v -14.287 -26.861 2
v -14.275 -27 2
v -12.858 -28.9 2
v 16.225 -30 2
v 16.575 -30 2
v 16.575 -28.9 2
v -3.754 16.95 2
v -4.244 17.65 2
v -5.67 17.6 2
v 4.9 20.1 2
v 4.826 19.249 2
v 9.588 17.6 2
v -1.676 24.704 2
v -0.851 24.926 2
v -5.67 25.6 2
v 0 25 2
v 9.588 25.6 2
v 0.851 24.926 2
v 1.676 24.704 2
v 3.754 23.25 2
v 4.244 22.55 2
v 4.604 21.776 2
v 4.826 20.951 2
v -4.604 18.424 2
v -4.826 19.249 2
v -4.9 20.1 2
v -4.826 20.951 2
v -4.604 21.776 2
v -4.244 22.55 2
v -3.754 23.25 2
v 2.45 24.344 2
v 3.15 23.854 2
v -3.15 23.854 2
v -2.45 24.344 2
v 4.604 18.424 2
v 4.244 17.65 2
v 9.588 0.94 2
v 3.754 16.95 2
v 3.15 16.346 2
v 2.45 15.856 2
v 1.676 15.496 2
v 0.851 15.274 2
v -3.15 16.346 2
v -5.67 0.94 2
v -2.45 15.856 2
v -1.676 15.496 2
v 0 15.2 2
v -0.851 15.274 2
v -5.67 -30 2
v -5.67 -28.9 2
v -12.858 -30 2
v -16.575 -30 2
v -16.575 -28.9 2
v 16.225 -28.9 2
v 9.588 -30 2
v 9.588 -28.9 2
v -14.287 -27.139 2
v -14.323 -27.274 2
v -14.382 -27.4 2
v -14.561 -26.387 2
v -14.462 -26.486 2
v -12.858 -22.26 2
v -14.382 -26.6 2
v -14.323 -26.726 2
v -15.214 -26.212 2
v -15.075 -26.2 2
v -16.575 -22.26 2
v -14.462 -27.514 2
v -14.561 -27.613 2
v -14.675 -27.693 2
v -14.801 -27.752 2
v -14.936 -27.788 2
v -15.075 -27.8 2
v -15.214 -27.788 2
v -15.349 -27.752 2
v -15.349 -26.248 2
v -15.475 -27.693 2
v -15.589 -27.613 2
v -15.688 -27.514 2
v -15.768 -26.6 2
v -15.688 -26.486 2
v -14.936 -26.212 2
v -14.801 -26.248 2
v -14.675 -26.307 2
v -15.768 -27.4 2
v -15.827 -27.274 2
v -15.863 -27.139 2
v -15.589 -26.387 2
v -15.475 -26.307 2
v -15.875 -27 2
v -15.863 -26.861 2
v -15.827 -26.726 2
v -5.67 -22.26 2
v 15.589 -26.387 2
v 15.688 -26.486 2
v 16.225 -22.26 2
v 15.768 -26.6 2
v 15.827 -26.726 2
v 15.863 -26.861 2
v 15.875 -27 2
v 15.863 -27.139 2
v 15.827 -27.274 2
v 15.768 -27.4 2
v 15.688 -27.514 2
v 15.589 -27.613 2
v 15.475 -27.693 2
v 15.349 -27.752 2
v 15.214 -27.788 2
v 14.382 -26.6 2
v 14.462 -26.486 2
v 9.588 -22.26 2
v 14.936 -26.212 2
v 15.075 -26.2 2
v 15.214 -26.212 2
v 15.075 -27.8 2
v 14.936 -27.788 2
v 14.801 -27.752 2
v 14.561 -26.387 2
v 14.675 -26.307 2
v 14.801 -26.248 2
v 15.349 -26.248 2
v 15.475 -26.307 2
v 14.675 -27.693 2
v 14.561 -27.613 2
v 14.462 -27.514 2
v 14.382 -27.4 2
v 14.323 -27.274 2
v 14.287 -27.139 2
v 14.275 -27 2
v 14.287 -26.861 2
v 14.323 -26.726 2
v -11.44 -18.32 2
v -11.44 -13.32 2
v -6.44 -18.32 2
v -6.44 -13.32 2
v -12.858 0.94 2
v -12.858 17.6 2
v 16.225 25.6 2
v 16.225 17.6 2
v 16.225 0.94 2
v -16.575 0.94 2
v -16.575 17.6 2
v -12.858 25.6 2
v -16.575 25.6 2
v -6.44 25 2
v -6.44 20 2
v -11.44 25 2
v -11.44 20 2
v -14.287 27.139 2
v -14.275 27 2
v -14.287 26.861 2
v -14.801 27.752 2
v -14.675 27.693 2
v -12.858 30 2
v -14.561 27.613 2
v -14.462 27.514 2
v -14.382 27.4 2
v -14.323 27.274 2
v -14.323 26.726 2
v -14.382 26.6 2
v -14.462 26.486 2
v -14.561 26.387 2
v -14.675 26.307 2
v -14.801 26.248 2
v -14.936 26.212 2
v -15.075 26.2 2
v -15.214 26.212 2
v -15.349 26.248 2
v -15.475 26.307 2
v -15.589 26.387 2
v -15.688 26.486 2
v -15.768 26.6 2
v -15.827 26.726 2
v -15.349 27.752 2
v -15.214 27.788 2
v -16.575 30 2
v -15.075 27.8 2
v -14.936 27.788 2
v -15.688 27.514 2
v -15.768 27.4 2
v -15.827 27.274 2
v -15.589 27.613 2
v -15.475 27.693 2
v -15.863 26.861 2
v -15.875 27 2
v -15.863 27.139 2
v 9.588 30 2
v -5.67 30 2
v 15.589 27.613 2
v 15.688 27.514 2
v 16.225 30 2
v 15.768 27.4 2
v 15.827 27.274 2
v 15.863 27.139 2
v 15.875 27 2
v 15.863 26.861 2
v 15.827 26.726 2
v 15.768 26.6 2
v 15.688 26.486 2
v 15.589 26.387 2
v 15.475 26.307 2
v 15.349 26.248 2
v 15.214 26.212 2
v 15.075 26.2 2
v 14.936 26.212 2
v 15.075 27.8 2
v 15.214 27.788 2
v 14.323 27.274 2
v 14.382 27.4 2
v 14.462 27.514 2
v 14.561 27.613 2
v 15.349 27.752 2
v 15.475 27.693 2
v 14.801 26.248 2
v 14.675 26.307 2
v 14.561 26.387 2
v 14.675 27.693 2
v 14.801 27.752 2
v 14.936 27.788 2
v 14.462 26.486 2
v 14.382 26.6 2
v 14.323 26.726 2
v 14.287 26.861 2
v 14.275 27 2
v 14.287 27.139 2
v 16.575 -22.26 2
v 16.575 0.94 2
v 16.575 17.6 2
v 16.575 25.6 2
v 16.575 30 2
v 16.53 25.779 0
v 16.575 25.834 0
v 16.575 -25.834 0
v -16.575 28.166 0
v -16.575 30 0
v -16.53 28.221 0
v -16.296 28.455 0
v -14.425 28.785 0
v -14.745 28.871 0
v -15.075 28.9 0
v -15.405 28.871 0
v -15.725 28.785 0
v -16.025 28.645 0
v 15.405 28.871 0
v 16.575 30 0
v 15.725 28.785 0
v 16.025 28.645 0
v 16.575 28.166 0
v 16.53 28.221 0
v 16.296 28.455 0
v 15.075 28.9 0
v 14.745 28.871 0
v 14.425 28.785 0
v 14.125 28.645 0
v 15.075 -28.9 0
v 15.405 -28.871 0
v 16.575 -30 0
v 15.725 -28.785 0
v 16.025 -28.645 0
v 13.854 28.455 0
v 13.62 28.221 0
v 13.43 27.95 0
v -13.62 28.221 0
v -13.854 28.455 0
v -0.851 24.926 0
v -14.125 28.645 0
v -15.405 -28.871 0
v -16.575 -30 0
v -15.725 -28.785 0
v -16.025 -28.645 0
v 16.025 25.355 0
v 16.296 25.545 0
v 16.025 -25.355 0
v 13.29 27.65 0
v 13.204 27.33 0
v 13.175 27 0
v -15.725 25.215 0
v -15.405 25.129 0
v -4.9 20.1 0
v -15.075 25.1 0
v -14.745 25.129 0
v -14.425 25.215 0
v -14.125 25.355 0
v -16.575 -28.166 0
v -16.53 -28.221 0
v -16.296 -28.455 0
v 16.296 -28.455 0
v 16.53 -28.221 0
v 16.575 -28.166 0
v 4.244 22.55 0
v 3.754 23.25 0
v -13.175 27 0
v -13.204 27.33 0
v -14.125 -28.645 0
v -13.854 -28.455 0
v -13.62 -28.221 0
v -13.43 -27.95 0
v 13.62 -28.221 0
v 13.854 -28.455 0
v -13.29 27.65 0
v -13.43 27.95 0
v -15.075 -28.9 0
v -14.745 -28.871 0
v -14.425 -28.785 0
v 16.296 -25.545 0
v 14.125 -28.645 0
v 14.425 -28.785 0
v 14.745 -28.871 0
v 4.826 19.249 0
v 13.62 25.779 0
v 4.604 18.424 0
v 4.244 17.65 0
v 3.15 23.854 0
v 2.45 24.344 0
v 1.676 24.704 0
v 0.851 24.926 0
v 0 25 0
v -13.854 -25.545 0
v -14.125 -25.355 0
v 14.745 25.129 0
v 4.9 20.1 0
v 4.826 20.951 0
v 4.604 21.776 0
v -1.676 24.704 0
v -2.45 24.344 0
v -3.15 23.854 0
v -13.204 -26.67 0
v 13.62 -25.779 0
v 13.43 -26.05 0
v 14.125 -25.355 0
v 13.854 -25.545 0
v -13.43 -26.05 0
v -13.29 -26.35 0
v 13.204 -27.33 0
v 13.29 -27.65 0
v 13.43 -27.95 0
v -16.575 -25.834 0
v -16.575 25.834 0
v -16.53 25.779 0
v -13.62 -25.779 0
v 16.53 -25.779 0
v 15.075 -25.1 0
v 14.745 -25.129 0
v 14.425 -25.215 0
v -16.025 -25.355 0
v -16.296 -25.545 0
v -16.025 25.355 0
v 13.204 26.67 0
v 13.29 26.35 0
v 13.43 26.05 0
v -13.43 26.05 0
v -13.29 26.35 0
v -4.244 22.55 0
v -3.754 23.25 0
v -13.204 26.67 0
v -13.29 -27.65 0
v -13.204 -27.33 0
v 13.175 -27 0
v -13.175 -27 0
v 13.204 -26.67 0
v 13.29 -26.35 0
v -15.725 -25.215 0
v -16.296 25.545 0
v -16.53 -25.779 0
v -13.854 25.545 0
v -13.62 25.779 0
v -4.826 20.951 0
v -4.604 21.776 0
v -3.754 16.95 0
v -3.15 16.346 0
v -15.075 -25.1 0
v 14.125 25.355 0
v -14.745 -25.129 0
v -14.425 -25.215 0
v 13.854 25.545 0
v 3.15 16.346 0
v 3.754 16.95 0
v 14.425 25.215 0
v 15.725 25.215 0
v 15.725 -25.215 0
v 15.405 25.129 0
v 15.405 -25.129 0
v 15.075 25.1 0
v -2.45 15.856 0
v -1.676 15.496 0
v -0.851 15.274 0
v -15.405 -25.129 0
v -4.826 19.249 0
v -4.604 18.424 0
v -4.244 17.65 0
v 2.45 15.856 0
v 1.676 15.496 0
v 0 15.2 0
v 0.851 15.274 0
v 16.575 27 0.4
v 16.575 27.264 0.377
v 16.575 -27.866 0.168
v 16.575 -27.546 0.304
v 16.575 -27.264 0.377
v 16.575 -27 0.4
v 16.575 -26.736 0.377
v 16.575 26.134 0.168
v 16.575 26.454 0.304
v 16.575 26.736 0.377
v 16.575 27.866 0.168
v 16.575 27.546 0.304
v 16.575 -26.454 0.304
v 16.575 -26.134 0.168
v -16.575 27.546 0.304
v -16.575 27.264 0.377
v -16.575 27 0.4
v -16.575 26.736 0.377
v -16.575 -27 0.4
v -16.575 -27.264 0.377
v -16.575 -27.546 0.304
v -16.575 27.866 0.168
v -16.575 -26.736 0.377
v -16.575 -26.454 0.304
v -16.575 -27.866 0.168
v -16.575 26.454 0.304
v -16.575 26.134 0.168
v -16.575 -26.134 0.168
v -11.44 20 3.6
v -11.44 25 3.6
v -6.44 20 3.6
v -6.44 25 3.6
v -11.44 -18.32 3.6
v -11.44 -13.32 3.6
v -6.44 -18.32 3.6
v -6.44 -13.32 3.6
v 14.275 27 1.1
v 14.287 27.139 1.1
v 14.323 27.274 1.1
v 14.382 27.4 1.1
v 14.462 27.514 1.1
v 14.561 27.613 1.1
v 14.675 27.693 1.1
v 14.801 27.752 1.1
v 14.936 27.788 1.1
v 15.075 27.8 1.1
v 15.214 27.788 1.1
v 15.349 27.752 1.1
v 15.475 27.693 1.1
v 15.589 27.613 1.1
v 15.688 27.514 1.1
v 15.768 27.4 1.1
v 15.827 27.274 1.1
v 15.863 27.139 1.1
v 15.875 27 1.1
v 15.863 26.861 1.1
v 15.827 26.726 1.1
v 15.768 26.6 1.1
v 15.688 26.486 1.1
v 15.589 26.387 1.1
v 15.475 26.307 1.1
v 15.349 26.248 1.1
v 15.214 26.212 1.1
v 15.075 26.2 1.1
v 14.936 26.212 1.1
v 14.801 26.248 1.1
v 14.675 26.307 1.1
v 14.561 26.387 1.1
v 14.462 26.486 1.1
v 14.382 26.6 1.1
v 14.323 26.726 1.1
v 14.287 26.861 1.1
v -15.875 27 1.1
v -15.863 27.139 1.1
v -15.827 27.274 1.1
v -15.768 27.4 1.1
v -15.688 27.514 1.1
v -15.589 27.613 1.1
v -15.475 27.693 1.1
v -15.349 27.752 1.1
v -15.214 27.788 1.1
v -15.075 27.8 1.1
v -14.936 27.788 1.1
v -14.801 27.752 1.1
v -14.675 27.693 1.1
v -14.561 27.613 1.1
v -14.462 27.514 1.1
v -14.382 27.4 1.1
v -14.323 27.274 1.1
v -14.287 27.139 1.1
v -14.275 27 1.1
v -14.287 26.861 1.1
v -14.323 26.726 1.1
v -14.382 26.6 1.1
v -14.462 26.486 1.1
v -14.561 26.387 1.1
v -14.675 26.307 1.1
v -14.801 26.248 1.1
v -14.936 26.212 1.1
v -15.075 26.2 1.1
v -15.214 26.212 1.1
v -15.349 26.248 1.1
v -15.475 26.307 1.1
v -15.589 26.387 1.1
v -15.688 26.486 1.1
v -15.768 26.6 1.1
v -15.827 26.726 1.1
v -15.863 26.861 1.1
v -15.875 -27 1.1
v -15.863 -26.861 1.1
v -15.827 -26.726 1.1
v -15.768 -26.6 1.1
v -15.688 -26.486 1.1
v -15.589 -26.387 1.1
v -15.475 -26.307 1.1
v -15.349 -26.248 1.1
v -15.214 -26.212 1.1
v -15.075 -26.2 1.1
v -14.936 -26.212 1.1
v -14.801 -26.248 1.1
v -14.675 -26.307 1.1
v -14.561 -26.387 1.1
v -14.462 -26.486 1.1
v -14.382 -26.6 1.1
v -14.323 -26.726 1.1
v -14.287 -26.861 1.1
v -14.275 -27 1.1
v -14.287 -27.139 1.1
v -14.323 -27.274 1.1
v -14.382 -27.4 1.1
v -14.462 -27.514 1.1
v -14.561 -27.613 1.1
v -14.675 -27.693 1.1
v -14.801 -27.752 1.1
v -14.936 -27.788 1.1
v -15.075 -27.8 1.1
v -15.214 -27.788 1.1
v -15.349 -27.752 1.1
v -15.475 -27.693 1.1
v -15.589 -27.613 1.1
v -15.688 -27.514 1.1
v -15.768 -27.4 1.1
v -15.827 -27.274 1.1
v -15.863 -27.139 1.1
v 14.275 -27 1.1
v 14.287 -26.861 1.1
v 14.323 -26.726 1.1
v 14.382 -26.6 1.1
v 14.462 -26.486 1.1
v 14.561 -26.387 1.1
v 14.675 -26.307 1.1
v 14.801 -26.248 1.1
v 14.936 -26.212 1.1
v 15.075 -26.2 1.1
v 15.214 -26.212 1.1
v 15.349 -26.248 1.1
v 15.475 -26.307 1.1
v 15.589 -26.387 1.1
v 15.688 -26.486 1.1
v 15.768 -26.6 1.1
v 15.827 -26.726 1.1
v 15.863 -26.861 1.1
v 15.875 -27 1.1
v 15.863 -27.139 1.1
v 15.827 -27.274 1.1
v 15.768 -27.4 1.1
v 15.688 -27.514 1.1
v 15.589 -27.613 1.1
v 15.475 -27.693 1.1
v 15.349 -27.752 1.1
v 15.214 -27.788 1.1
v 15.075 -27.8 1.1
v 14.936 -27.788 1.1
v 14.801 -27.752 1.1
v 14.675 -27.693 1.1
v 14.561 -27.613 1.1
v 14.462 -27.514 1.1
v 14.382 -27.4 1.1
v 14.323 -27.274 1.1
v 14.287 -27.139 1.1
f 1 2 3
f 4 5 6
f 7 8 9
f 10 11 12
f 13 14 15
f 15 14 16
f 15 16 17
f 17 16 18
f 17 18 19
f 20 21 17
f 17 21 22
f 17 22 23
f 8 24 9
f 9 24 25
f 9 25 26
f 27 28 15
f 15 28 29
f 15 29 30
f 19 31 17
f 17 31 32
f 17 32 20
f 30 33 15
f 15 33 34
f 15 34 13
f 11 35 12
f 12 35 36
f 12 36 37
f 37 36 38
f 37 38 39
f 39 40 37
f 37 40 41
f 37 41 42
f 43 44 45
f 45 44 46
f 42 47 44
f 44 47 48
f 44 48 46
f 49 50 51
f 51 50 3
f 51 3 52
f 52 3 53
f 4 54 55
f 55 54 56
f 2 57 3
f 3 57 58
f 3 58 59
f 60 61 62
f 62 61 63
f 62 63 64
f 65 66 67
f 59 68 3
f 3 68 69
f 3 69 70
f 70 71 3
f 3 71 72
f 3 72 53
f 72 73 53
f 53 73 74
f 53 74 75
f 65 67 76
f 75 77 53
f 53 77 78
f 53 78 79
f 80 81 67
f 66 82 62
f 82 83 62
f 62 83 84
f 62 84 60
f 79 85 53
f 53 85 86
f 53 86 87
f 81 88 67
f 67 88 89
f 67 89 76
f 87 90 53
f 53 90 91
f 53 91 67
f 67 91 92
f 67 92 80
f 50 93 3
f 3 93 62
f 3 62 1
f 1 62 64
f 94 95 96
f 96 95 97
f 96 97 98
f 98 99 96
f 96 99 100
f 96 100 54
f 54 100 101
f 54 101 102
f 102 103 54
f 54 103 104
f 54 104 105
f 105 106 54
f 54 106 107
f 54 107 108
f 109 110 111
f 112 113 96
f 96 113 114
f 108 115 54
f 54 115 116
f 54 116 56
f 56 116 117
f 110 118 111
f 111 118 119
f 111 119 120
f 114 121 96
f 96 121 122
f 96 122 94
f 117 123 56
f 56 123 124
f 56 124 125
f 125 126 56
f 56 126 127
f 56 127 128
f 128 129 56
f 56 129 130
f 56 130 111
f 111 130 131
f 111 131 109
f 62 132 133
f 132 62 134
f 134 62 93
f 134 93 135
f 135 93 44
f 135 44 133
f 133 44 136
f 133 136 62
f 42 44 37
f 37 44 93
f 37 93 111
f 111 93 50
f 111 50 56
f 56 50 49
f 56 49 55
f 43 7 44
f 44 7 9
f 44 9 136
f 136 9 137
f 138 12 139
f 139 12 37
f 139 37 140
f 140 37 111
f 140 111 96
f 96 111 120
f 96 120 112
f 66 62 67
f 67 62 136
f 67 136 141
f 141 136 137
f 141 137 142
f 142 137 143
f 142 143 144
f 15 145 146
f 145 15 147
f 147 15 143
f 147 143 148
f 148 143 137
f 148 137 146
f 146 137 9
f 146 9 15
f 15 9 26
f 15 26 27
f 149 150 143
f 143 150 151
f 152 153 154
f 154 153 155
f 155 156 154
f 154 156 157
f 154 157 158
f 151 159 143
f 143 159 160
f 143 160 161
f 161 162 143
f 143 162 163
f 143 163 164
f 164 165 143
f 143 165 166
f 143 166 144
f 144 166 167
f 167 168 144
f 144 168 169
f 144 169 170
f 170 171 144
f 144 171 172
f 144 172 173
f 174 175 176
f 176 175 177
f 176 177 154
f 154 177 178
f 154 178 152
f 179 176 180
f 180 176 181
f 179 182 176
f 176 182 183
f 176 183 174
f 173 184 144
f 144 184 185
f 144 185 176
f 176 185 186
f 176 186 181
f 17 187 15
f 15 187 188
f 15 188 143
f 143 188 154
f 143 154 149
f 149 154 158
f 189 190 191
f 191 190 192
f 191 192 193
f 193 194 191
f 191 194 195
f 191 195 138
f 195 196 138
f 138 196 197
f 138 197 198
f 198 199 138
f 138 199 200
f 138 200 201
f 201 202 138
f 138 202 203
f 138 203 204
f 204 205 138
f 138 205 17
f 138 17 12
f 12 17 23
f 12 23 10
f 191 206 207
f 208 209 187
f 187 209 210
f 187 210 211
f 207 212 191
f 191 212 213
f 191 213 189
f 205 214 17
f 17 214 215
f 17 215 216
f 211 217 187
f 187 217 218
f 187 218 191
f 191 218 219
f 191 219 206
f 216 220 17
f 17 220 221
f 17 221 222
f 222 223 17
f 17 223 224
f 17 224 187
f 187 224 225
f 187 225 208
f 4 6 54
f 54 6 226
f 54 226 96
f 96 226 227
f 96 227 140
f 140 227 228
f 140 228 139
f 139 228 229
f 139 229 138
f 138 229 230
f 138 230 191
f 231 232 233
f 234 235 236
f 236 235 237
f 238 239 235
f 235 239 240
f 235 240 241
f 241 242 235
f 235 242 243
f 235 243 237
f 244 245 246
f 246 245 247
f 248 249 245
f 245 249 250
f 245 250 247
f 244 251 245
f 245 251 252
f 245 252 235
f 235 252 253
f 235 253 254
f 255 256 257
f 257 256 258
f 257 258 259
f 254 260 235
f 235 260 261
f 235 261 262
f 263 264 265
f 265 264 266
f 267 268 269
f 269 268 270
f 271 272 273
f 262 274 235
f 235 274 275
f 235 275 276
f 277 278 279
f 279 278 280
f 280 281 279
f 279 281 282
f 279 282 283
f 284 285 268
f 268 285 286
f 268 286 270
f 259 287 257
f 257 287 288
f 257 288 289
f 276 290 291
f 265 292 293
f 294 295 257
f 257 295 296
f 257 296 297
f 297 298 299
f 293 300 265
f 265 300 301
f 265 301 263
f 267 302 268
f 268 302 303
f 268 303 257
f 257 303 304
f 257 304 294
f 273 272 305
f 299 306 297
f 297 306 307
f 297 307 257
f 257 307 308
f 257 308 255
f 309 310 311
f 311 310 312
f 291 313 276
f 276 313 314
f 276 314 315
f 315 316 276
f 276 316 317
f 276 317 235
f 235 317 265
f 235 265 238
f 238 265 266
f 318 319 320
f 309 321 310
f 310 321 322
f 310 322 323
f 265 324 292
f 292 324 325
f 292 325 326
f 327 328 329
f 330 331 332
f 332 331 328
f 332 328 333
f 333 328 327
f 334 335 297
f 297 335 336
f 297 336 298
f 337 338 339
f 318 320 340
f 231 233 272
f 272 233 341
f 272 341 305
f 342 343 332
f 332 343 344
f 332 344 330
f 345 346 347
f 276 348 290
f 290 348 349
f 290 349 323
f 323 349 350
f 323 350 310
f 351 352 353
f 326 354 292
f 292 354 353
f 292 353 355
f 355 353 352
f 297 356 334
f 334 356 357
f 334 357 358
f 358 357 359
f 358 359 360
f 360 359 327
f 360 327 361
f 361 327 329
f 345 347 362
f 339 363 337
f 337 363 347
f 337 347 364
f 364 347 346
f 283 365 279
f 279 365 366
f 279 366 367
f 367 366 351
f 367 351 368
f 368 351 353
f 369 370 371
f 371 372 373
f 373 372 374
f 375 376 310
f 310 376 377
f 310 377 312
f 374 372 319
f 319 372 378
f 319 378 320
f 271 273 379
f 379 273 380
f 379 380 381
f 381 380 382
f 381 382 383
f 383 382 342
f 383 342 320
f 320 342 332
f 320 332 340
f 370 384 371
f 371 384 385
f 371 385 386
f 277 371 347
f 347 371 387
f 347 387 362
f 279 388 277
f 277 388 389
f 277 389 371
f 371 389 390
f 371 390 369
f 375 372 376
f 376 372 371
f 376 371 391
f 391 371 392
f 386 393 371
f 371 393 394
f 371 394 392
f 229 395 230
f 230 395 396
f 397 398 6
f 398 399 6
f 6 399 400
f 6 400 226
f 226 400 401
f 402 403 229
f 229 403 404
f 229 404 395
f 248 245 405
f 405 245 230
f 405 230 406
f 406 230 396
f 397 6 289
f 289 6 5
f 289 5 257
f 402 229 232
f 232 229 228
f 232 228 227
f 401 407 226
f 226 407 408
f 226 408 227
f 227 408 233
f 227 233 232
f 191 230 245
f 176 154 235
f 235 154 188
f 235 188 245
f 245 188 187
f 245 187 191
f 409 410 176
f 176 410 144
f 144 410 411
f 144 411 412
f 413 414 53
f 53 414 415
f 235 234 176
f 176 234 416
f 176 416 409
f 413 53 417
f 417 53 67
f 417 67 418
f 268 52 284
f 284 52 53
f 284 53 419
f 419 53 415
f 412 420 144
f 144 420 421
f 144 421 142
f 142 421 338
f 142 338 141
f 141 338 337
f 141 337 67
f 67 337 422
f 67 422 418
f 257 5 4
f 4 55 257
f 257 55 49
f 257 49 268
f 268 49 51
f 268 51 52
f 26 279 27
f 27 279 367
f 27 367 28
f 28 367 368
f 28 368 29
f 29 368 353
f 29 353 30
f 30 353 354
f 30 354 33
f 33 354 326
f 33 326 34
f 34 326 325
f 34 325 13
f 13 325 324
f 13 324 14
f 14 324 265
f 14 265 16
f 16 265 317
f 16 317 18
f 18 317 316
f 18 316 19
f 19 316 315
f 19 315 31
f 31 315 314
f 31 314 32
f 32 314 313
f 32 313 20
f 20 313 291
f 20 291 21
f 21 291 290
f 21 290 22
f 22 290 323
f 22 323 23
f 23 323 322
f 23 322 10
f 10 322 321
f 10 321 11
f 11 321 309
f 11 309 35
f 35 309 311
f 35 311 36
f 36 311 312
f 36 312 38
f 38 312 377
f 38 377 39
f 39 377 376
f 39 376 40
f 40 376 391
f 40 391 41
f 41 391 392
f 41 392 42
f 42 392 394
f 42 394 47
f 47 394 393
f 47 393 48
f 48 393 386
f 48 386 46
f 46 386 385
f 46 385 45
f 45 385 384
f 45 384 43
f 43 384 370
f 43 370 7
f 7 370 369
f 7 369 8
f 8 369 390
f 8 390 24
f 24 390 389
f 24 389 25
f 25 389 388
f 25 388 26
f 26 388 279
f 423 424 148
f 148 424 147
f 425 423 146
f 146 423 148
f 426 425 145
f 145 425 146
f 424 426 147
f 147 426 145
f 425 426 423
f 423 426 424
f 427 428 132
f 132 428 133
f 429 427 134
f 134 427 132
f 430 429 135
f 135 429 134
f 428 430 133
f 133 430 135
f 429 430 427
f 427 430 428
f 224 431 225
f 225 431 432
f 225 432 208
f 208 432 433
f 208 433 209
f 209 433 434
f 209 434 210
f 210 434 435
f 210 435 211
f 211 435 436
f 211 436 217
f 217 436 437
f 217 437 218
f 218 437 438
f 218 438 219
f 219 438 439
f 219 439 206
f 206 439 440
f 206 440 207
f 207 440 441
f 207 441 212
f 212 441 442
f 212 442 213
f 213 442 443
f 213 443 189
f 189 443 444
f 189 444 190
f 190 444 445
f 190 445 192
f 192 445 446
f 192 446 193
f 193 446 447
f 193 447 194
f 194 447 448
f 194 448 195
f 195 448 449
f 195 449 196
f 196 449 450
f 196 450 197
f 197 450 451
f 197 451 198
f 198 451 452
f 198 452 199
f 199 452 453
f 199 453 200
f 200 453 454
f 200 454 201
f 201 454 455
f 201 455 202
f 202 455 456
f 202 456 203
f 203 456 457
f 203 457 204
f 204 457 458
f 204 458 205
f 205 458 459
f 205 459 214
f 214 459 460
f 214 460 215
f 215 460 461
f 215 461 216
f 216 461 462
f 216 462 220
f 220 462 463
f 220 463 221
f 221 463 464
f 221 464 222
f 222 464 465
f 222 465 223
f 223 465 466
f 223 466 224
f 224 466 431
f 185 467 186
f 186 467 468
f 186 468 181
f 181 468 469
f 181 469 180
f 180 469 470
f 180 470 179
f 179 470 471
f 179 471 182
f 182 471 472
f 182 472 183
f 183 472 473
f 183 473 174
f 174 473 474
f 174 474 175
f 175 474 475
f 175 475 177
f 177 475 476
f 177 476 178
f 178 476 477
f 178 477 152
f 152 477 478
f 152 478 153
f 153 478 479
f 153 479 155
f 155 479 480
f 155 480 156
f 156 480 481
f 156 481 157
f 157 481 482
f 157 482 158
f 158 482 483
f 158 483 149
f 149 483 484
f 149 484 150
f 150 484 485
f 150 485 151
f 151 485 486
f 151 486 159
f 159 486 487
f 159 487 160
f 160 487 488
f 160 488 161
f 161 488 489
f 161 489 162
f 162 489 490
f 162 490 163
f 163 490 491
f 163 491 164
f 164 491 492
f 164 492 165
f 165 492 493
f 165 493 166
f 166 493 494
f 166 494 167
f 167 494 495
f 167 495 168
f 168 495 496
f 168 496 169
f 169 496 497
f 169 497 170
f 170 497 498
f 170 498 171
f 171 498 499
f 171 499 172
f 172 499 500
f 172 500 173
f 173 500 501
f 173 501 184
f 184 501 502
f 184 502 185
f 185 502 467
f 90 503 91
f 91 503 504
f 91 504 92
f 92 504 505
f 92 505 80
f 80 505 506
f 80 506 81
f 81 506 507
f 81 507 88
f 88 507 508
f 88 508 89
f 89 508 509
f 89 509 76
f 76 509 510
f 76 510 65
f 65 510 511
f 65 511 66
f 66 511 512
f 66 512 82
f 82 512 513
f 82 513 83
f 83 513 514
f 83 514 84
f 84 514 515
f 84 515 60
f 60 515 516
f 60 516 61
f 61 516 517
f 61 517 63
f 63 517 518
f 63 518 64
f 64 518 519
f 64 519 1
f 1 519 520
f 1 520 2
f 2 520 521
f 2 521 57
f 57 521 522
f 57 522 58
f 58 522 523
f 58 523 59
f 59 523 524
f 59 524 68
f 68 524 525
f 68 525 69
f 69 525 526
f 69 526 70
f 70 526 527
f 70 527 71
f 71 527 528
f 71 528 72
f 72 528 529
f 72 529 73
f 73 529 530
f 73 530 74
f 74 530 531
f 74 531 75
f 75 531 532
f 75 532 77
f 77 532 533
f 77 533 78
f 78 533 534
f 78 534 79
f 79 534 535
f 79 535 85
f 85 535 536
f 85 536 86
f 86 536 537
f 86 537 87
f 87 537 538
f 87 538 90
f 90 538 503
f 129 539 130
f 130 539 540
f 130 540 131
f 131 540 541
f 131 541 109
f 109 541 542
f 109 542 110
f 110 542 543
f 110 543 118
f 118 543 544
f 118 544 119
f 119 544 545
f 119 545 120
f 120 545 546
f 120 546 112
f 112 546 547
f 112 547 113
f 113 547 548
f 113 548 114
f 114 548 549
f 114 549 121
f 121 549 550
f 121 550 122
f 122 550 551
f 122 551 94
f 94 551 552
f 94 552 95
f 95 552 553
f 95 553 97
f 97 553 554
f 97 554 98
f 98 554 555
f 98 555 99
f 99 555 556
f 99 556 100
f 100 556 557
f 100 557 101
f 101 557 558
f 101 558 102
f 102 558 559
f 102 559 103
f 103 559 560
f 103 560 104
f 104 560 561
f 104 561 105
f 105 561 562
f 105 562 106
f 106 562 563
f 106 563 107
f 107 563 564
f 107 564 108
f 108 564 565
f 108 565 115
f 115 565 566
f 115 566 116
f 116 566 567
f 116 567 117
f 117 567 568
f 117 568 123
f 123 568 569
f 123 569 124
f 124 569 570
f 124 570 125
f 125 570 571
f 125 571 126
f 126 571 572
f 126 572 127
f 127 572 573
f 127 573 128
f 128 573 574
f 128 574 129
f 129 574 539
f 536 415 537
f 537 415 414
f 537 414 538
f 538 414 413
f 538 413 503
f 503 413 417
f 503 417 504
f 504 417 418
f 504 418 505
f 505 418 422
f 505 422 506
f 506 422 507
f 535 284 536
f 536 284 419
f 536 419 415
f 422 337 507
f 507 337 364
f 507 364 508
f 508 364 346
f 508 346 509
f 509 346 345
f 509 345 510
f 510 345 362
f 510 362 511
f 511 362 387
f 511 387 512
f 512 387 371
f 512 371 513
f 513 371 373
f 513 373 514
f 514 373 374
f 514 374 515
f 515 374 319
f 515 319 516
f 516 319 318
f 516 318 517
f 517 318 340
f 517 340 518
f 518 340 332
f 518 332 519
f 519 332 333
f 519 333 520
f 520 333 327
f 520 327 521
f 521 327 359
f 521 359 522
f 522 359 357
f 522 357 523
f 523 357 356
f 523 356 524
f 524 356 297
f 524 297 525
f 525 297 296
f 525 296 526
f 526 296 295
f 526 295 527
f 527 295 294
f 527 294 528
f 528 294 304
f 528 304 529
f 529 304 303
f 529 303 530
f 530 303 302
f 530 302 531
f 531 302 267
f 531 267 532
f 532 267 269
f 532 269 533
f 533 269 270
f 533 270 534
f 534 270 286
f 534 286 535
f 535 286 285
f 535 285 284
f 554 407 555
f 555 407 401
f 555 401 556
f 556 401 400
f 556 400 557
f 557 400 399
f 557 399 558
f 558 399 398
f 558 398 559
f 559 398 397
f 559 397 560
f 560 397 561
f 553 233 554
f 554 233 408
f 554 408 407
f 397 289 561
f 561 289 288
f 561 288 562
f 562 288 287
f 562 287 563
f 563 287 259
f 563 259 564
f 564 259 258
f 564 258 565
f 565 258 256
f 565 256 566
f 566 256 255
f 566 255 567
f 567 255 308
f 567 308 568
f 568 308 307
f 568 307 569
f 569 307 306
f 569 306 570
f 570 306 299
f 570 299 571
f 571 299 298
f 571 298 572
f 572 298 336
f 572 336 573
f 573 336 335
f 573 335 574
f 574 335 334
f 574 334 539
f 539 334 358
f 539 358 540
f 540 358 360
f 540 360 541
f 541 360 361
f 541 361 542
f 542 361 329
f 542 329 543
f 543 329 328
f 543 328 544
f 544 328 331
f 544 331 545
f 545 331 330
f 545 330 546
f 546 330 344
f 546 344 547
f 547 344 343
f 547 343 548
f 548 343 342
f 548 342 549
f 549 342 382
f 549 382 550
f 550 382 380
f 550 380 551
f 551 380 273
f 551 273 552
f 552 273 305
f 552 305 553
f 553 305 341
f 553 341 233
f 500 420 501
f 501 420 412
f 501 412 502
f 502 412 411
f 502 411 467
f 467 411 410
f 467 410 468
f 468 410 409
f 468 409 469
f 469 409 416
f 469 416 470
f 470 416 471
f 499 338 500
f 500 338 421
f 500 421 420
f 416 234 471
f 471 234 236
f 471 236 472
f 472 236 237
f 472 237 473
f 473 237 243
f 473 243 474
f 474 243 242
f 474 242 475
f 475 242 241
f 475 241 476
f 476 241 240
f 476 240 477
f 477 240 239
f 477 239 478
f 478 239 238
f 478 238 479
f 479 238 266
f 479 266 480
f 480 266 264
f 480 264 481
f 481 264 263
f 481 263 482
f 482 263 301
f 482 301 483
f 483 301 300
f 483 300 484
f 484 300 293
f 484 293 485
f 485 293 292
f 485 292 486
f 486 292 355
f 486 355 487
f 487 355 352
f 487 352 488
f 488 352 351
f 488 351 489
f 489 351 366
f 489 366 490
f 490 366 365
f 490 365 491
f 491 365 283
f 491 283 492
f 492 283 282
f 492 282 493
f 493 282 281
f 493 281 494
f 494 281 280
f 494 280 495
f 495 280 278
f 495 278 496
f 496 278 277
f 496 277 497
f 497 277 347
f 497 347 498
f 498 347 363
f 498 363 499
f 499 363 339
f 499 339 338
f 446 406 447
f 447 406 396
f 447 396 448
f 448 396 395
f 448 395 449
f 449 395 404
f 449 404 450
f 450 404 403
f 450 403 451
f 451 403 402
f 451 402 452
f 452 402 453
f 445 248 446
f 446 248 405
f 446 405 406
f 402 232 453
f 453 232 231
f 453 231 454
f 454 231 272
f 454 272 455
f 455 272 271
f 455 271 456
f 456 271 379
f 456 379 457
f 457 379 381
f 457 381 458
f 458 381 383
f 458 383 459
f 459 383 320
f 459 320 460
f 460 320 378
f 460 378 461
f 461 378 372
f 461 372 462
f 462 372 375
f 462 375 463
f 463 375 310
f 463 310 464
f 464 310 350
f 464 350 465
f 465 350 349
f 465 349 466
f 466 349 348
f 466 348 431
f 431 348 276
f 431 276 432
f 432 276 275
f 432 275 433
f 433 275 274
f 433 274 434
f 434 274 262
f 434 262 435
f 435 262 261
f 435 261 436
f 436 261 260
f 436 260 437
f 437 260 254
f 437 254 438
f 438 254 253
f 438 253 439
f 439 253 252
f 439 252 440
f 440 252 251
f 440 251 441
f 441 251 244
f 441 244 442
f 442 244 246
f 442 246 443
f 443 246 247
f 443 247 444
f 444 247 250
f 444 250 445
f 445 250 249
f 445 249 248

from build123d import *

# Parameters (mm, degrees)
SKETCH1_W           = 33.15
SKETCH1_H           = 60
SKETCH1_R           = 4.9
BOSS_EXTRUDE1_DEPTH = 2
SKETCH3_W           = 5
SKETCH3_H           = 5
BOSS_EXTRUDE2_DEPTH = 1.6
SKETCH4_R           = 0.8
CUT_EXTRUDE1_DEPTH  = 2
CHAMFER1_SIZE       = 1.1


with BuildPart() as part:
    # Sketch1 → Boss-Extrude1 (new body)
    with BuildSketch(Plane.XY):
        Rectangle(SKETCH1_W, SKETCH1_H)
        with Locations((0, 20.1)):
            Circle(SKETCH1_R, mode=Mode.SUBTRACT)
    extrude(amount=BOSS_EXTRUDE1_DEPTH)

    # Sketch3 → Boss-Extrude2 (add)
    with BuildSketch(Plane.XY.offset(2)):
        with Locations((-8.94, 22.5)):
            Rectangle(SKETCH3_W, SKETCH3_H)
        with Locations((-8.94, -15.82)):
            Rectangle(SKETCH3_W, SKETCH3_H)
    extrude(amount=BOSS_EXTRUDE2_DEPTH)

    # Sketch4 → Cut-Extrude1 (cut)
    with BuildSketch(Plane(origin=(0, 0, 0), x_dir=(-1, 0, 0), z_dir=(0, 0, -1))):
        with Locations((-15.075, 27)):
            Circle(SKETCH4_R)
        with Locations((15.075, 27)):
            Circle(SKETCH4_R)
        with Locations((15.075, -27)):
            Circle(SKETCH4_R)
        with Locations((-15.075, -27)):
            Circle(SKETCH4_R)
    extrude(amount=-CUT_EXTRUDE1_DEPTH, mode=Mode.SUBTRACT)

    # Chamfer1
    # the kernel refuses this chamfer: 1.1 mm, written as the material it takes off along each edge
    with BuildSketch(Plane(origin=(15.075, -27, 0), x_dir=(-1, 0, 0), z_dir=(0, -1, 0))) as chamfer1_piece_1:
        Polygon((0.8 + CHAMFER1_SIZE, 0), (0.8, -CHAMFER1_SIZE), (0.8, 0), align=None)
    revolve(axis=Axis((15.075, -27, 0), (0, 0, -1)), mode=Mode.SUBTRACT)
    with BuildSketch(Plane(origin=(-15.075, -27, 0), x_dir=(-1, 0, 0), z_dir=(0, -1, 0))) as chamfer1_piece_2:
        Polygon((0.8 + CHAMFER1_SIZE, 0), (0.8, -CHAMFER1_SIZE), (0.8, 0), align=None)
    revolve(axis=Axis((-15.075, -27, 0), (0, 0, -1)), mode=Mode.SUBTRACT)
    with BuildSketch(Plane(origin=(-15.075, 27, 0), x_dir=(-1, 0, 0), z_dir=(0, -1, 0))) as chamfer1_piece_3:
        Polygon((0.8 + CHAMFER1_SIZE, 0), (0.8, -CHAMFER1_SIZE), (0.8, 0), align=None)
    revolve(axis=Axis((-15.075, 27, 0), (0, 0, -1)), mode=Mode.SUBTRACT)
    with BuildSketch(Plane(origin=(15.075, 27, 0), x_dir=(-1, 0, 0), z_dir=(0, -1, 0))) as chamfer1_piece_4:
        Polygon((0.8 + CHAMFER1_SIZE, 0), (0.8, -CHAMFER1_SIZE), (0.8, 0), align=None)
    revolve(axis=Axis((15.075, 27, 0), (0, 0, -1)), mode=Mode.SUBTRACT)


solid = part.part
